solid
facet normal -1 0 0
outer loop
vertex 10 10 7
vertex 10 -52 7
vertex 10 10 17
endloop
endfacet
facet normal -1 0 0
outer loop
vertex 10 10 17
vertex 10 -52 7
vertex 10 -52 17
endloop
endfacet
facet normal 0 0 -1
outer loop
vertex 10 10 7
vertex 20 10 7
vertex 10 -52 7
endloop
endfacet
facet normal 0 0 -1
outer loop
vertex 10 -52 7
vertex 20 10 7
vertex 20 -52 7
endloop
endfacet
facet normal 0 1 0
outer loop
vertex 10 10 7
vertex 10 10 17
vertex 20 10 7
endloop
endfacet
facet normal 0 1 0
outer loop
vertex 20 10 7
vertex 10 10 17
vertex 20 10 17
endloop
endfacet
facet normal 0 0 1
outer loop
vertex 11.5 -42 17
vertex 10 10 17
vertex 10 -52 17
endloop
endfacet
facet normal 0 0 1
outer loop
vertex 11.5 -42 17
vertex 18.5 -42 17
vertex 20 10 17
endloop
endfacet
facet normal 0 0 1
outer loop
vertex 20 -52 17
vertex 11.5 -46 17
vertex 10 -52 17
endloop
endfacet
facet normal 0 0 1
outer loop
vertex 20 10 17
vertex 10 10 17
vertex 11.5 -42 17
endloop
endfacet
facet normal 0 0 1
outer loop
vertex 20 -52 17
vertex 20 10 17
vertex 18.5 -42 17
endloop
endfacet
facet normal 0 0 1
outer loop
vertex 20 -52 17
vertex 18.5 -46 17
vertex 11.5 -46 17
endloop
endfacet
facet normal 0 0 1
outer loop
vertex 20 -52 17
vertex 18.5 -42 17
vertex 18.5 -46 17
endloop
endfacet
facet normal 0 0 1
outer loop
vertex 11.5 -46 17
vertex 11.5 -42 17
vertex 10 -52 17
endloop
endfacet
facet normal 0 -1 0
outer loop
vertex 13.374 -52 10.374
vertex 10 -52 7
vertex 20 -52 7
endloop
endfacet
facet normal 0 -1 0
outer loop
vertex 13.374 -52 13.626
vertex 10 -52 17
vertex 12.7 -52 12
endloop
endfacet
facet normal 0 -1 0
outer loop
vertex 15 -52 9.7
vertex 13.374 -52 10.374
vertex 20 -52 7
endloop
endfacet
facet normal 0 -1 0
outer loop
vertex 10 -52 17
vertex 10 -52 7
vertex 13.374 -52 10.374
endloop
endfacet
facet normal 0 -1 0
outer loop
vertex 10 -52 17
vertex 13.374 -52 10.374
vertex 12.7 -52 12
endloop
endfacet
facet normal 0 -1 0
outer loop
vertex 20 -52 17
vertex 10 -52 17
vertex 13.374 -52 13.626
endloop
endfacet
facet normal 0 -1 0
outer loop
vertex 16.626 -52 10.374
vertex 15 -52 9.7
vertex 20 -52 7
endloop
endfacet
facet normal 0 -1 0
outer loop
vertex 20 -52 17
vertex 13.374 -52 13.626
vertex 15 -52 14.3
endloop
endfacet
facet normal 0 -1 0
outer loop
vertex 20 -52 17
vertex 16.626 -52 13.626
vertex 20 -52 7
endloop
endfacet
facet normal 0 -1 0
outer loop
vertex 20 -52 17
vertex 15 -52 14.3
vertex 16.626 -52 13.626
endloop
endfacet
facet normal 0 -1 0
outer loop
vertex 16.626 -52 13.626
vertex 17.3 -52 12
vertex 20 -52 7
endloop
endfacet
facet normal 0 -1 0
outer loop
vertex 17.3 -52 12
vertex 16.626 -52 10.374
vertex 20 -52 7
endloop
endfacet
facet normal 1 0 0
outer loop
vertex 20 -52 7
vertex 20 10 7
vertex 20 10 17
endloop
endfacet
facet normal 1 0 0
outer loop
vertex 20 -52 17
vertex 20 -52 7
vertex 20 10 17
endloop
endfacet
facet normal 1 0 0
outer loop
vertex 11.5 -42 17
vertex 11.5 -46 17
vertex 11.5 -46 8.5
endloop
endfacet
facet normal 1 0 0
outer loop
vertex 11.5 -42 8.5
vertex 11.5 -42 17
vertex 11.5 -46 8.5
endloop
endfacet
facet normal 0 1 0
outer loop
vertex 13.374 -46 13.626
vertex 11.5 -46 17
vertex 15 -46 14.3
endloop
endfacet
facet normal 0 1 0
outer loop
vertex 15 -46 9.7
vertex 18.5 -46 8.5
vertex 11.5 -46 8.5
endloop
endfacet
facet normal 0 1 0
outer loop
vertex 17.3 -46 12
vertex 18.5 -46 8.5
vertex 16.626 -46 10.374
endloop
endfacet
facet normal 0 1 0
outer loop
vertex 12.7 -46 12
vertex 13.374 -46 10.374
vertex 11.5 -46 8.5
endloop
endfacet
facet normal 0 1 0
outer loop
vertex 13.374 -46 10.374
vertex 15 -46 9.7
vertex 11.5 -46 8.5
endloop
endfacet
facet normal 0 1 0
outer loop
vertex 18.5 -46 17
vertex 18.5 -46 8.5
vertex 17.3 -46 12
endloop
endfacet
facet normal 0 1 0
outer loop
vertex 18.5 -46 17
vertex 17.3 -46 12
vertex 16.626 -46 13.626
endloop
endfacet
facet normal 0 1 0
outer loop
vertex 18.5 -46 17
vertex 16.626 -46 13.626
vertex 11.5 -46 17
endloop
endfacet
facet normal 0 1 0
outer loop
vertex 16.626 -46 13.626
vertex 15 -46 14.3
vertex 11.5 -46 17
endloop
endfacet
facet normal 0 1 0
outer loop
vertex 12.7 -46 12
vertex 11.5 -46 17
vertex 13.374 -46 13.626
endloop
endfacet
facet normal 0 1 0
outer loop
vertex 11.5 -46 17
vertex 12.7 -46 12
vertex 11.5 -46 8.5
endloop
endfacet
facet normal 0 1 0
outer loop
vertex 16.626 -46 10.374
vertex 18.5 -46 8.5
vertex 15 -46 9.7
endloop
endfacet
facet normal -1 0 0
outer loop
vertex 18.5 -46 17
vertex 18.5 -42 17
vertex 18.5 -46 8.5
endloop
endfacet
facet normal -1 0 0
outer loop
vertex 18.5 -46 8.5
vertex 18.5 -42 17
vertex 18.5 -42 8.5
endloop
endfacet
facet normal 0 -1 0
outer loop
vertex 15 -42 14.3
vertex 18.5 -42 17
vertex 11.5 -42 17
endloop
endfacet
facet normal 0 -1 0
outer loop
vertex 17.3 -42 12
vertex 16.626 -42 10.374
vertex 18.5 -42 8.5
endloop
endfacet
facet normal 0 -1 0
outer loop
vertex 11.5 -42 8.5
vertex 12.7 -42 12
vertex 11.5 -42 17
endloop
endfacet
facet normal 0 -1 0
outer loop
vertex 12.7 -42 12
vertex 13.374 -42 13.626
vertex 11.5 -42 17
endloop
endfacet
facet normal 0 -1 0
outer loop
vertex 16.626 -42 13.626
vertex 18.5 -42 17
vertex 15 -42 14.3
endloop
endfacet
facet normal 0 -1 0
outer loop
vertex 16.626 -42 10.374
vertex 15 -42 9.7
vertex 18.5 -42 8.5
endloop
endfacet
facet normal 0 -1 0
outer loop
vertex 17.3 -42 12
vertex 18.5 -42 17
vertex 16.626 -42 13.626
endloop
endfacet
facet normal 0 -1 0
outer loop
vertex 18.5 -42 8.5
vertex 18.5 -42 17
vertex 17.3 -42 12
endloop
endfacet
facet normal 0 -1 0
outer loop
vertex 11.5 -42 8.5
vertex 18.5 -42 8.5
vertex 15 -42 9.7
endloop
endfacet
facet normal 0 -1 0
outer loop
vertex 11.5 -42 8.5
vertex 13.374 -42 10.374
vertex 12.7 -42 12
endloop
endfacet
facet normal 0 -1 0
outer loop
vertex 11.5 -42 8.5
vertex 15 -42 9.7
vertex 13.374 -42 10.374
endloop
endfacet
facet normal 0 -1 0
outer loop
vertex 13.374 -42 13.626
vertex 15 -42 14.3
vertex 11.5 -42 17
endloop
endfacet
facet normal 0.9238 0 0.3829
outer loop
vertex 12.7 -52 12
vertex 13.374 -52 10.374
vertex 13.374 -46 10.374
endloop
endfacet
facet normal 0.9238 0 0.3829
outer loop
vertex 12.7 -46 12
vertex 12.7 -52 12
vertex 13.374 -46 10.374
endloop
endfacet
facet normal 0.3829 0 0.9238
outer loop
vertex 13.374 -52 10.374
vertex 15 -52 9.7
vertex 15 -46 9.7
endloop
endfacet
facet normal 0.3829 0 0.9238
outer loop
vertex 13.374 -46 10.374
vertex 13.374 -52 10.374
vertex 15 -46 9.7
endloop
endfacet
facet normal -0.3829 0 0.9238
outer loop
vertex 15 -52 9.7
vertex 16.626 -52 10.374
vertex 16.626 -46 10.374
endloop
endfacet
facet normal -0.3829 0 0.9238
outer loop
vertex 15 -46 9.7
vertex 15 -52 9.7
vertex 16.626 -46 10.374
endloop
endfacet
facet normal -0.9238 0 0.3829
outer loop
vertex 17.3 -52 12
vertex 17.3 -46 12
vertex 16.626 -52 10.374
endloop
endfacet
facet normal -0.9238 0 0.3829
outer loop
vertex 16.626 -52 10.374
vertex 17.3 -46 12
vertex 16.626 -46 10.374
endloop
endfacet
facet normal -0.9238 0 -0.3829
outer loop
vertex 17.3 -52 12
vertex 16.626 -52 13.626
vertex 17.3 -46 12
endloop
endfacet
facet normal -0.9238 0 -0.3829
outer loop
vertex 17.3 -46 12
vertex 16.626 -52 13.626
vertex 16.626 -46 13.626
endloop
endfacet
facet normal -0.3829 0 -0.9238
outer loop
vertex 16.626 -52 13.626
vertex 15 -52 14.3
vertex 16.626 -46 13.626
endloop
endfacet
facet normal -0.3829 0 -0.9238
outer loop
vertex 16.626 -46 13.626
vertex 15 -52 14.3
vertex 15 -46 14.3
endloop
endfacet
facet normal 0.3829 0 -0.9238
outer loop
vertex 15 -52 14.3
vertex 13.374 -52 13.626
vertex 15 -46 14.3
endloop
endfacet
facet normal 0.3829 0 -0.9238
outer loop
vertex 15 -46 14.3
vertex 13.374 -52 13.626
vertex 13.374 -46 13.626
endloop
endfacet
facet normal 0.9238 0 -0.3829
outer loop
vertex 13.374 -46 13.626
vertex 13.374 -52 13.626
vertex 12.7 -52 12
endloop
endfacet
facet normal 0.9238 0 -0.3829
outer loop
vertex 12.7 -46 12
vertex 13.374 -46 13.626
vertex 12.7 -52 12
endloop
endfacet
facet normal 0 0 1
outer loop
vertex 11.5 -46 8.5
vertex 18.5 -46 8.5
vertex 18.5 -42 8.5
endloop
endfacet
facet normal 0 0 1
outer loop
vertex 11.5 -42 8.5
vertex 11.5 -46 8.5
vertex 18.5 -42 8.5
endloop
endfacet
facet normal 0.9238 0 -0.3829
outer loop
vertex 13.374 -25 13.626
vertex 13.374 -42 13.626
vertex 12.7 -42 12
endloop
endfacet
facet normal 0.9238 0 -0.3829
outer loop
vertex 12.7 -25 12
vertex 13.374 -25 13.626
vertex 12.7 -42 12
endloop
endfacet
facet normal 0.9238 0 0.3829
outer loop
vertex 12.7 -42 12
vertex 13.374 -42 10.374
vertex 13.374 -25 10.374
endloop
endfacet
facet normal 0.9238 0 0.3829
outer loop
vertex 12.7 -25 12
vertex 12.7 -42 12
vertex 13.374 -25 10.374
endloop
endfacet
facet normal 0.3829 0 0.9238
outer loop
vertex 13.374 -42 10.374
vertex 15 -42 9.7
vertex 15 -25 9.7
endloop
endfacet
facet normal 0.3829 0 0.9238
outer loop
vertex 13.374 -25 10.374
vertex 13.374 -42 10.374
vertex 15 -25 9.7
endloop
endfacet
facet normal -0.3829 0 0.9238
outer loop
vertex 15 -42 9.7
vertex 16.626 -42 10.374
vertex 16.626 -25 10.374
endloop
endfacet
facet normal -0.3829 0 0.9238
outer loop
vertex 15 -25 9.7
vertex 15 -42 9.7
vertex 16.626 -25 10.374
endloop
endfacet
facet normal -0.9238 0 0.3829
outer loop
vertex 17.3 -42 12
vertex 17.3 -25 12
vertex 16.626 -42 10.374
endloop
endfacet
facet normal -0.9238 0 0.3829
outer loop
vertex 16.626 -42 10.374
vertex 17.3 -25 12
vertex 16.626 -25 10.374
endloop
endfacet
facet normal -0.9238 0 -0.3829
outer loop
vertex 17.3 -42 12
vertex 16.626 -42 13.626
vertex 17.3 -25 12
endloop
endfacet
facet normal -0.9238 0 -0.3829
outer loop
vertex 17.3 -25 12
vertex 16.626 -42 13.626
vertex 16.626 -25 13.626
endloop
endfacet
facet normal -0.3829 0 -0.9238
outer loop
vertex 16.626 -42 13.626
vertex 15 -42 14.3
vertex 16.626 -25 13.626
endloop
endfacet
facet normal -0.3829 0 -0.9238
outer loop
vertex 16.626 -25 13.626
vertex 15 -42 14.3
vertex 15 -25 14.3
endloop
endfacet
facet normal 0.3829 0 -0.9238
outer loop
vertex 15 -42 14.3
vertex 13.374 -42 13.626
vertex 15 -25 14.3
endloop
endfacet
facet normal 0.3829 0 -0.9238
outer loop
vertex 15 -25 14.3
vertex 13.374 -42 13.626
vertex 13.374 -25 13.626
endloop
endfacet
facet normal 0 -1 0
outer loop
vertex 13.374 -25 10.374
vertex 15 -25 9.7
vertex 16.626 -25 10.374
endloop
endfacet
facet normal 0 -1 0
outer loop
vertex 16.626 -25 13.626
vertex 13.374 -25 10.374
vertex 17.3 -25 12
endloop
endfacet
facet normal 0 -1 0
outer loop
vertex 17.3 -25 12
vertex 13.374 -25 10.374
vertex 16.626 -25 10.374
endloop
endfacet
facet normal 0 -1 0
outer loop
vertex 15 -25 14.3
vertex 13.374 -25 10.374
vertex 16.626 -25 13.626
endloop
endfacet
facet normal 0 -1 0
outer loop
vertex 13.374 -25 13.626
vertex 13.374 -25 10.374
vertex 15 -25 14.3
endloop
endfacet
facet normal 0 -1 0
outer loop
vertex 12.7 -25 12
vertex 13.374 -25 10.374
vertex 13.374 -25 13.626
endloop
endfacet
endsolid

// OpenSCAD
dist_cent=45;

rotate([90,0,0])
difference(){

//Pieza móvil
translate([30/2-10/2,7,-10])
cube([10,10,62]);

union(){
//Pasante vertical
translate([30/2,7+10/2,25])
cylinder(r=2.3,h=30);
//Cajera tuerca
translate([30/2-7/2,8.5,42])
cube([7,10,4]); 
}

}
